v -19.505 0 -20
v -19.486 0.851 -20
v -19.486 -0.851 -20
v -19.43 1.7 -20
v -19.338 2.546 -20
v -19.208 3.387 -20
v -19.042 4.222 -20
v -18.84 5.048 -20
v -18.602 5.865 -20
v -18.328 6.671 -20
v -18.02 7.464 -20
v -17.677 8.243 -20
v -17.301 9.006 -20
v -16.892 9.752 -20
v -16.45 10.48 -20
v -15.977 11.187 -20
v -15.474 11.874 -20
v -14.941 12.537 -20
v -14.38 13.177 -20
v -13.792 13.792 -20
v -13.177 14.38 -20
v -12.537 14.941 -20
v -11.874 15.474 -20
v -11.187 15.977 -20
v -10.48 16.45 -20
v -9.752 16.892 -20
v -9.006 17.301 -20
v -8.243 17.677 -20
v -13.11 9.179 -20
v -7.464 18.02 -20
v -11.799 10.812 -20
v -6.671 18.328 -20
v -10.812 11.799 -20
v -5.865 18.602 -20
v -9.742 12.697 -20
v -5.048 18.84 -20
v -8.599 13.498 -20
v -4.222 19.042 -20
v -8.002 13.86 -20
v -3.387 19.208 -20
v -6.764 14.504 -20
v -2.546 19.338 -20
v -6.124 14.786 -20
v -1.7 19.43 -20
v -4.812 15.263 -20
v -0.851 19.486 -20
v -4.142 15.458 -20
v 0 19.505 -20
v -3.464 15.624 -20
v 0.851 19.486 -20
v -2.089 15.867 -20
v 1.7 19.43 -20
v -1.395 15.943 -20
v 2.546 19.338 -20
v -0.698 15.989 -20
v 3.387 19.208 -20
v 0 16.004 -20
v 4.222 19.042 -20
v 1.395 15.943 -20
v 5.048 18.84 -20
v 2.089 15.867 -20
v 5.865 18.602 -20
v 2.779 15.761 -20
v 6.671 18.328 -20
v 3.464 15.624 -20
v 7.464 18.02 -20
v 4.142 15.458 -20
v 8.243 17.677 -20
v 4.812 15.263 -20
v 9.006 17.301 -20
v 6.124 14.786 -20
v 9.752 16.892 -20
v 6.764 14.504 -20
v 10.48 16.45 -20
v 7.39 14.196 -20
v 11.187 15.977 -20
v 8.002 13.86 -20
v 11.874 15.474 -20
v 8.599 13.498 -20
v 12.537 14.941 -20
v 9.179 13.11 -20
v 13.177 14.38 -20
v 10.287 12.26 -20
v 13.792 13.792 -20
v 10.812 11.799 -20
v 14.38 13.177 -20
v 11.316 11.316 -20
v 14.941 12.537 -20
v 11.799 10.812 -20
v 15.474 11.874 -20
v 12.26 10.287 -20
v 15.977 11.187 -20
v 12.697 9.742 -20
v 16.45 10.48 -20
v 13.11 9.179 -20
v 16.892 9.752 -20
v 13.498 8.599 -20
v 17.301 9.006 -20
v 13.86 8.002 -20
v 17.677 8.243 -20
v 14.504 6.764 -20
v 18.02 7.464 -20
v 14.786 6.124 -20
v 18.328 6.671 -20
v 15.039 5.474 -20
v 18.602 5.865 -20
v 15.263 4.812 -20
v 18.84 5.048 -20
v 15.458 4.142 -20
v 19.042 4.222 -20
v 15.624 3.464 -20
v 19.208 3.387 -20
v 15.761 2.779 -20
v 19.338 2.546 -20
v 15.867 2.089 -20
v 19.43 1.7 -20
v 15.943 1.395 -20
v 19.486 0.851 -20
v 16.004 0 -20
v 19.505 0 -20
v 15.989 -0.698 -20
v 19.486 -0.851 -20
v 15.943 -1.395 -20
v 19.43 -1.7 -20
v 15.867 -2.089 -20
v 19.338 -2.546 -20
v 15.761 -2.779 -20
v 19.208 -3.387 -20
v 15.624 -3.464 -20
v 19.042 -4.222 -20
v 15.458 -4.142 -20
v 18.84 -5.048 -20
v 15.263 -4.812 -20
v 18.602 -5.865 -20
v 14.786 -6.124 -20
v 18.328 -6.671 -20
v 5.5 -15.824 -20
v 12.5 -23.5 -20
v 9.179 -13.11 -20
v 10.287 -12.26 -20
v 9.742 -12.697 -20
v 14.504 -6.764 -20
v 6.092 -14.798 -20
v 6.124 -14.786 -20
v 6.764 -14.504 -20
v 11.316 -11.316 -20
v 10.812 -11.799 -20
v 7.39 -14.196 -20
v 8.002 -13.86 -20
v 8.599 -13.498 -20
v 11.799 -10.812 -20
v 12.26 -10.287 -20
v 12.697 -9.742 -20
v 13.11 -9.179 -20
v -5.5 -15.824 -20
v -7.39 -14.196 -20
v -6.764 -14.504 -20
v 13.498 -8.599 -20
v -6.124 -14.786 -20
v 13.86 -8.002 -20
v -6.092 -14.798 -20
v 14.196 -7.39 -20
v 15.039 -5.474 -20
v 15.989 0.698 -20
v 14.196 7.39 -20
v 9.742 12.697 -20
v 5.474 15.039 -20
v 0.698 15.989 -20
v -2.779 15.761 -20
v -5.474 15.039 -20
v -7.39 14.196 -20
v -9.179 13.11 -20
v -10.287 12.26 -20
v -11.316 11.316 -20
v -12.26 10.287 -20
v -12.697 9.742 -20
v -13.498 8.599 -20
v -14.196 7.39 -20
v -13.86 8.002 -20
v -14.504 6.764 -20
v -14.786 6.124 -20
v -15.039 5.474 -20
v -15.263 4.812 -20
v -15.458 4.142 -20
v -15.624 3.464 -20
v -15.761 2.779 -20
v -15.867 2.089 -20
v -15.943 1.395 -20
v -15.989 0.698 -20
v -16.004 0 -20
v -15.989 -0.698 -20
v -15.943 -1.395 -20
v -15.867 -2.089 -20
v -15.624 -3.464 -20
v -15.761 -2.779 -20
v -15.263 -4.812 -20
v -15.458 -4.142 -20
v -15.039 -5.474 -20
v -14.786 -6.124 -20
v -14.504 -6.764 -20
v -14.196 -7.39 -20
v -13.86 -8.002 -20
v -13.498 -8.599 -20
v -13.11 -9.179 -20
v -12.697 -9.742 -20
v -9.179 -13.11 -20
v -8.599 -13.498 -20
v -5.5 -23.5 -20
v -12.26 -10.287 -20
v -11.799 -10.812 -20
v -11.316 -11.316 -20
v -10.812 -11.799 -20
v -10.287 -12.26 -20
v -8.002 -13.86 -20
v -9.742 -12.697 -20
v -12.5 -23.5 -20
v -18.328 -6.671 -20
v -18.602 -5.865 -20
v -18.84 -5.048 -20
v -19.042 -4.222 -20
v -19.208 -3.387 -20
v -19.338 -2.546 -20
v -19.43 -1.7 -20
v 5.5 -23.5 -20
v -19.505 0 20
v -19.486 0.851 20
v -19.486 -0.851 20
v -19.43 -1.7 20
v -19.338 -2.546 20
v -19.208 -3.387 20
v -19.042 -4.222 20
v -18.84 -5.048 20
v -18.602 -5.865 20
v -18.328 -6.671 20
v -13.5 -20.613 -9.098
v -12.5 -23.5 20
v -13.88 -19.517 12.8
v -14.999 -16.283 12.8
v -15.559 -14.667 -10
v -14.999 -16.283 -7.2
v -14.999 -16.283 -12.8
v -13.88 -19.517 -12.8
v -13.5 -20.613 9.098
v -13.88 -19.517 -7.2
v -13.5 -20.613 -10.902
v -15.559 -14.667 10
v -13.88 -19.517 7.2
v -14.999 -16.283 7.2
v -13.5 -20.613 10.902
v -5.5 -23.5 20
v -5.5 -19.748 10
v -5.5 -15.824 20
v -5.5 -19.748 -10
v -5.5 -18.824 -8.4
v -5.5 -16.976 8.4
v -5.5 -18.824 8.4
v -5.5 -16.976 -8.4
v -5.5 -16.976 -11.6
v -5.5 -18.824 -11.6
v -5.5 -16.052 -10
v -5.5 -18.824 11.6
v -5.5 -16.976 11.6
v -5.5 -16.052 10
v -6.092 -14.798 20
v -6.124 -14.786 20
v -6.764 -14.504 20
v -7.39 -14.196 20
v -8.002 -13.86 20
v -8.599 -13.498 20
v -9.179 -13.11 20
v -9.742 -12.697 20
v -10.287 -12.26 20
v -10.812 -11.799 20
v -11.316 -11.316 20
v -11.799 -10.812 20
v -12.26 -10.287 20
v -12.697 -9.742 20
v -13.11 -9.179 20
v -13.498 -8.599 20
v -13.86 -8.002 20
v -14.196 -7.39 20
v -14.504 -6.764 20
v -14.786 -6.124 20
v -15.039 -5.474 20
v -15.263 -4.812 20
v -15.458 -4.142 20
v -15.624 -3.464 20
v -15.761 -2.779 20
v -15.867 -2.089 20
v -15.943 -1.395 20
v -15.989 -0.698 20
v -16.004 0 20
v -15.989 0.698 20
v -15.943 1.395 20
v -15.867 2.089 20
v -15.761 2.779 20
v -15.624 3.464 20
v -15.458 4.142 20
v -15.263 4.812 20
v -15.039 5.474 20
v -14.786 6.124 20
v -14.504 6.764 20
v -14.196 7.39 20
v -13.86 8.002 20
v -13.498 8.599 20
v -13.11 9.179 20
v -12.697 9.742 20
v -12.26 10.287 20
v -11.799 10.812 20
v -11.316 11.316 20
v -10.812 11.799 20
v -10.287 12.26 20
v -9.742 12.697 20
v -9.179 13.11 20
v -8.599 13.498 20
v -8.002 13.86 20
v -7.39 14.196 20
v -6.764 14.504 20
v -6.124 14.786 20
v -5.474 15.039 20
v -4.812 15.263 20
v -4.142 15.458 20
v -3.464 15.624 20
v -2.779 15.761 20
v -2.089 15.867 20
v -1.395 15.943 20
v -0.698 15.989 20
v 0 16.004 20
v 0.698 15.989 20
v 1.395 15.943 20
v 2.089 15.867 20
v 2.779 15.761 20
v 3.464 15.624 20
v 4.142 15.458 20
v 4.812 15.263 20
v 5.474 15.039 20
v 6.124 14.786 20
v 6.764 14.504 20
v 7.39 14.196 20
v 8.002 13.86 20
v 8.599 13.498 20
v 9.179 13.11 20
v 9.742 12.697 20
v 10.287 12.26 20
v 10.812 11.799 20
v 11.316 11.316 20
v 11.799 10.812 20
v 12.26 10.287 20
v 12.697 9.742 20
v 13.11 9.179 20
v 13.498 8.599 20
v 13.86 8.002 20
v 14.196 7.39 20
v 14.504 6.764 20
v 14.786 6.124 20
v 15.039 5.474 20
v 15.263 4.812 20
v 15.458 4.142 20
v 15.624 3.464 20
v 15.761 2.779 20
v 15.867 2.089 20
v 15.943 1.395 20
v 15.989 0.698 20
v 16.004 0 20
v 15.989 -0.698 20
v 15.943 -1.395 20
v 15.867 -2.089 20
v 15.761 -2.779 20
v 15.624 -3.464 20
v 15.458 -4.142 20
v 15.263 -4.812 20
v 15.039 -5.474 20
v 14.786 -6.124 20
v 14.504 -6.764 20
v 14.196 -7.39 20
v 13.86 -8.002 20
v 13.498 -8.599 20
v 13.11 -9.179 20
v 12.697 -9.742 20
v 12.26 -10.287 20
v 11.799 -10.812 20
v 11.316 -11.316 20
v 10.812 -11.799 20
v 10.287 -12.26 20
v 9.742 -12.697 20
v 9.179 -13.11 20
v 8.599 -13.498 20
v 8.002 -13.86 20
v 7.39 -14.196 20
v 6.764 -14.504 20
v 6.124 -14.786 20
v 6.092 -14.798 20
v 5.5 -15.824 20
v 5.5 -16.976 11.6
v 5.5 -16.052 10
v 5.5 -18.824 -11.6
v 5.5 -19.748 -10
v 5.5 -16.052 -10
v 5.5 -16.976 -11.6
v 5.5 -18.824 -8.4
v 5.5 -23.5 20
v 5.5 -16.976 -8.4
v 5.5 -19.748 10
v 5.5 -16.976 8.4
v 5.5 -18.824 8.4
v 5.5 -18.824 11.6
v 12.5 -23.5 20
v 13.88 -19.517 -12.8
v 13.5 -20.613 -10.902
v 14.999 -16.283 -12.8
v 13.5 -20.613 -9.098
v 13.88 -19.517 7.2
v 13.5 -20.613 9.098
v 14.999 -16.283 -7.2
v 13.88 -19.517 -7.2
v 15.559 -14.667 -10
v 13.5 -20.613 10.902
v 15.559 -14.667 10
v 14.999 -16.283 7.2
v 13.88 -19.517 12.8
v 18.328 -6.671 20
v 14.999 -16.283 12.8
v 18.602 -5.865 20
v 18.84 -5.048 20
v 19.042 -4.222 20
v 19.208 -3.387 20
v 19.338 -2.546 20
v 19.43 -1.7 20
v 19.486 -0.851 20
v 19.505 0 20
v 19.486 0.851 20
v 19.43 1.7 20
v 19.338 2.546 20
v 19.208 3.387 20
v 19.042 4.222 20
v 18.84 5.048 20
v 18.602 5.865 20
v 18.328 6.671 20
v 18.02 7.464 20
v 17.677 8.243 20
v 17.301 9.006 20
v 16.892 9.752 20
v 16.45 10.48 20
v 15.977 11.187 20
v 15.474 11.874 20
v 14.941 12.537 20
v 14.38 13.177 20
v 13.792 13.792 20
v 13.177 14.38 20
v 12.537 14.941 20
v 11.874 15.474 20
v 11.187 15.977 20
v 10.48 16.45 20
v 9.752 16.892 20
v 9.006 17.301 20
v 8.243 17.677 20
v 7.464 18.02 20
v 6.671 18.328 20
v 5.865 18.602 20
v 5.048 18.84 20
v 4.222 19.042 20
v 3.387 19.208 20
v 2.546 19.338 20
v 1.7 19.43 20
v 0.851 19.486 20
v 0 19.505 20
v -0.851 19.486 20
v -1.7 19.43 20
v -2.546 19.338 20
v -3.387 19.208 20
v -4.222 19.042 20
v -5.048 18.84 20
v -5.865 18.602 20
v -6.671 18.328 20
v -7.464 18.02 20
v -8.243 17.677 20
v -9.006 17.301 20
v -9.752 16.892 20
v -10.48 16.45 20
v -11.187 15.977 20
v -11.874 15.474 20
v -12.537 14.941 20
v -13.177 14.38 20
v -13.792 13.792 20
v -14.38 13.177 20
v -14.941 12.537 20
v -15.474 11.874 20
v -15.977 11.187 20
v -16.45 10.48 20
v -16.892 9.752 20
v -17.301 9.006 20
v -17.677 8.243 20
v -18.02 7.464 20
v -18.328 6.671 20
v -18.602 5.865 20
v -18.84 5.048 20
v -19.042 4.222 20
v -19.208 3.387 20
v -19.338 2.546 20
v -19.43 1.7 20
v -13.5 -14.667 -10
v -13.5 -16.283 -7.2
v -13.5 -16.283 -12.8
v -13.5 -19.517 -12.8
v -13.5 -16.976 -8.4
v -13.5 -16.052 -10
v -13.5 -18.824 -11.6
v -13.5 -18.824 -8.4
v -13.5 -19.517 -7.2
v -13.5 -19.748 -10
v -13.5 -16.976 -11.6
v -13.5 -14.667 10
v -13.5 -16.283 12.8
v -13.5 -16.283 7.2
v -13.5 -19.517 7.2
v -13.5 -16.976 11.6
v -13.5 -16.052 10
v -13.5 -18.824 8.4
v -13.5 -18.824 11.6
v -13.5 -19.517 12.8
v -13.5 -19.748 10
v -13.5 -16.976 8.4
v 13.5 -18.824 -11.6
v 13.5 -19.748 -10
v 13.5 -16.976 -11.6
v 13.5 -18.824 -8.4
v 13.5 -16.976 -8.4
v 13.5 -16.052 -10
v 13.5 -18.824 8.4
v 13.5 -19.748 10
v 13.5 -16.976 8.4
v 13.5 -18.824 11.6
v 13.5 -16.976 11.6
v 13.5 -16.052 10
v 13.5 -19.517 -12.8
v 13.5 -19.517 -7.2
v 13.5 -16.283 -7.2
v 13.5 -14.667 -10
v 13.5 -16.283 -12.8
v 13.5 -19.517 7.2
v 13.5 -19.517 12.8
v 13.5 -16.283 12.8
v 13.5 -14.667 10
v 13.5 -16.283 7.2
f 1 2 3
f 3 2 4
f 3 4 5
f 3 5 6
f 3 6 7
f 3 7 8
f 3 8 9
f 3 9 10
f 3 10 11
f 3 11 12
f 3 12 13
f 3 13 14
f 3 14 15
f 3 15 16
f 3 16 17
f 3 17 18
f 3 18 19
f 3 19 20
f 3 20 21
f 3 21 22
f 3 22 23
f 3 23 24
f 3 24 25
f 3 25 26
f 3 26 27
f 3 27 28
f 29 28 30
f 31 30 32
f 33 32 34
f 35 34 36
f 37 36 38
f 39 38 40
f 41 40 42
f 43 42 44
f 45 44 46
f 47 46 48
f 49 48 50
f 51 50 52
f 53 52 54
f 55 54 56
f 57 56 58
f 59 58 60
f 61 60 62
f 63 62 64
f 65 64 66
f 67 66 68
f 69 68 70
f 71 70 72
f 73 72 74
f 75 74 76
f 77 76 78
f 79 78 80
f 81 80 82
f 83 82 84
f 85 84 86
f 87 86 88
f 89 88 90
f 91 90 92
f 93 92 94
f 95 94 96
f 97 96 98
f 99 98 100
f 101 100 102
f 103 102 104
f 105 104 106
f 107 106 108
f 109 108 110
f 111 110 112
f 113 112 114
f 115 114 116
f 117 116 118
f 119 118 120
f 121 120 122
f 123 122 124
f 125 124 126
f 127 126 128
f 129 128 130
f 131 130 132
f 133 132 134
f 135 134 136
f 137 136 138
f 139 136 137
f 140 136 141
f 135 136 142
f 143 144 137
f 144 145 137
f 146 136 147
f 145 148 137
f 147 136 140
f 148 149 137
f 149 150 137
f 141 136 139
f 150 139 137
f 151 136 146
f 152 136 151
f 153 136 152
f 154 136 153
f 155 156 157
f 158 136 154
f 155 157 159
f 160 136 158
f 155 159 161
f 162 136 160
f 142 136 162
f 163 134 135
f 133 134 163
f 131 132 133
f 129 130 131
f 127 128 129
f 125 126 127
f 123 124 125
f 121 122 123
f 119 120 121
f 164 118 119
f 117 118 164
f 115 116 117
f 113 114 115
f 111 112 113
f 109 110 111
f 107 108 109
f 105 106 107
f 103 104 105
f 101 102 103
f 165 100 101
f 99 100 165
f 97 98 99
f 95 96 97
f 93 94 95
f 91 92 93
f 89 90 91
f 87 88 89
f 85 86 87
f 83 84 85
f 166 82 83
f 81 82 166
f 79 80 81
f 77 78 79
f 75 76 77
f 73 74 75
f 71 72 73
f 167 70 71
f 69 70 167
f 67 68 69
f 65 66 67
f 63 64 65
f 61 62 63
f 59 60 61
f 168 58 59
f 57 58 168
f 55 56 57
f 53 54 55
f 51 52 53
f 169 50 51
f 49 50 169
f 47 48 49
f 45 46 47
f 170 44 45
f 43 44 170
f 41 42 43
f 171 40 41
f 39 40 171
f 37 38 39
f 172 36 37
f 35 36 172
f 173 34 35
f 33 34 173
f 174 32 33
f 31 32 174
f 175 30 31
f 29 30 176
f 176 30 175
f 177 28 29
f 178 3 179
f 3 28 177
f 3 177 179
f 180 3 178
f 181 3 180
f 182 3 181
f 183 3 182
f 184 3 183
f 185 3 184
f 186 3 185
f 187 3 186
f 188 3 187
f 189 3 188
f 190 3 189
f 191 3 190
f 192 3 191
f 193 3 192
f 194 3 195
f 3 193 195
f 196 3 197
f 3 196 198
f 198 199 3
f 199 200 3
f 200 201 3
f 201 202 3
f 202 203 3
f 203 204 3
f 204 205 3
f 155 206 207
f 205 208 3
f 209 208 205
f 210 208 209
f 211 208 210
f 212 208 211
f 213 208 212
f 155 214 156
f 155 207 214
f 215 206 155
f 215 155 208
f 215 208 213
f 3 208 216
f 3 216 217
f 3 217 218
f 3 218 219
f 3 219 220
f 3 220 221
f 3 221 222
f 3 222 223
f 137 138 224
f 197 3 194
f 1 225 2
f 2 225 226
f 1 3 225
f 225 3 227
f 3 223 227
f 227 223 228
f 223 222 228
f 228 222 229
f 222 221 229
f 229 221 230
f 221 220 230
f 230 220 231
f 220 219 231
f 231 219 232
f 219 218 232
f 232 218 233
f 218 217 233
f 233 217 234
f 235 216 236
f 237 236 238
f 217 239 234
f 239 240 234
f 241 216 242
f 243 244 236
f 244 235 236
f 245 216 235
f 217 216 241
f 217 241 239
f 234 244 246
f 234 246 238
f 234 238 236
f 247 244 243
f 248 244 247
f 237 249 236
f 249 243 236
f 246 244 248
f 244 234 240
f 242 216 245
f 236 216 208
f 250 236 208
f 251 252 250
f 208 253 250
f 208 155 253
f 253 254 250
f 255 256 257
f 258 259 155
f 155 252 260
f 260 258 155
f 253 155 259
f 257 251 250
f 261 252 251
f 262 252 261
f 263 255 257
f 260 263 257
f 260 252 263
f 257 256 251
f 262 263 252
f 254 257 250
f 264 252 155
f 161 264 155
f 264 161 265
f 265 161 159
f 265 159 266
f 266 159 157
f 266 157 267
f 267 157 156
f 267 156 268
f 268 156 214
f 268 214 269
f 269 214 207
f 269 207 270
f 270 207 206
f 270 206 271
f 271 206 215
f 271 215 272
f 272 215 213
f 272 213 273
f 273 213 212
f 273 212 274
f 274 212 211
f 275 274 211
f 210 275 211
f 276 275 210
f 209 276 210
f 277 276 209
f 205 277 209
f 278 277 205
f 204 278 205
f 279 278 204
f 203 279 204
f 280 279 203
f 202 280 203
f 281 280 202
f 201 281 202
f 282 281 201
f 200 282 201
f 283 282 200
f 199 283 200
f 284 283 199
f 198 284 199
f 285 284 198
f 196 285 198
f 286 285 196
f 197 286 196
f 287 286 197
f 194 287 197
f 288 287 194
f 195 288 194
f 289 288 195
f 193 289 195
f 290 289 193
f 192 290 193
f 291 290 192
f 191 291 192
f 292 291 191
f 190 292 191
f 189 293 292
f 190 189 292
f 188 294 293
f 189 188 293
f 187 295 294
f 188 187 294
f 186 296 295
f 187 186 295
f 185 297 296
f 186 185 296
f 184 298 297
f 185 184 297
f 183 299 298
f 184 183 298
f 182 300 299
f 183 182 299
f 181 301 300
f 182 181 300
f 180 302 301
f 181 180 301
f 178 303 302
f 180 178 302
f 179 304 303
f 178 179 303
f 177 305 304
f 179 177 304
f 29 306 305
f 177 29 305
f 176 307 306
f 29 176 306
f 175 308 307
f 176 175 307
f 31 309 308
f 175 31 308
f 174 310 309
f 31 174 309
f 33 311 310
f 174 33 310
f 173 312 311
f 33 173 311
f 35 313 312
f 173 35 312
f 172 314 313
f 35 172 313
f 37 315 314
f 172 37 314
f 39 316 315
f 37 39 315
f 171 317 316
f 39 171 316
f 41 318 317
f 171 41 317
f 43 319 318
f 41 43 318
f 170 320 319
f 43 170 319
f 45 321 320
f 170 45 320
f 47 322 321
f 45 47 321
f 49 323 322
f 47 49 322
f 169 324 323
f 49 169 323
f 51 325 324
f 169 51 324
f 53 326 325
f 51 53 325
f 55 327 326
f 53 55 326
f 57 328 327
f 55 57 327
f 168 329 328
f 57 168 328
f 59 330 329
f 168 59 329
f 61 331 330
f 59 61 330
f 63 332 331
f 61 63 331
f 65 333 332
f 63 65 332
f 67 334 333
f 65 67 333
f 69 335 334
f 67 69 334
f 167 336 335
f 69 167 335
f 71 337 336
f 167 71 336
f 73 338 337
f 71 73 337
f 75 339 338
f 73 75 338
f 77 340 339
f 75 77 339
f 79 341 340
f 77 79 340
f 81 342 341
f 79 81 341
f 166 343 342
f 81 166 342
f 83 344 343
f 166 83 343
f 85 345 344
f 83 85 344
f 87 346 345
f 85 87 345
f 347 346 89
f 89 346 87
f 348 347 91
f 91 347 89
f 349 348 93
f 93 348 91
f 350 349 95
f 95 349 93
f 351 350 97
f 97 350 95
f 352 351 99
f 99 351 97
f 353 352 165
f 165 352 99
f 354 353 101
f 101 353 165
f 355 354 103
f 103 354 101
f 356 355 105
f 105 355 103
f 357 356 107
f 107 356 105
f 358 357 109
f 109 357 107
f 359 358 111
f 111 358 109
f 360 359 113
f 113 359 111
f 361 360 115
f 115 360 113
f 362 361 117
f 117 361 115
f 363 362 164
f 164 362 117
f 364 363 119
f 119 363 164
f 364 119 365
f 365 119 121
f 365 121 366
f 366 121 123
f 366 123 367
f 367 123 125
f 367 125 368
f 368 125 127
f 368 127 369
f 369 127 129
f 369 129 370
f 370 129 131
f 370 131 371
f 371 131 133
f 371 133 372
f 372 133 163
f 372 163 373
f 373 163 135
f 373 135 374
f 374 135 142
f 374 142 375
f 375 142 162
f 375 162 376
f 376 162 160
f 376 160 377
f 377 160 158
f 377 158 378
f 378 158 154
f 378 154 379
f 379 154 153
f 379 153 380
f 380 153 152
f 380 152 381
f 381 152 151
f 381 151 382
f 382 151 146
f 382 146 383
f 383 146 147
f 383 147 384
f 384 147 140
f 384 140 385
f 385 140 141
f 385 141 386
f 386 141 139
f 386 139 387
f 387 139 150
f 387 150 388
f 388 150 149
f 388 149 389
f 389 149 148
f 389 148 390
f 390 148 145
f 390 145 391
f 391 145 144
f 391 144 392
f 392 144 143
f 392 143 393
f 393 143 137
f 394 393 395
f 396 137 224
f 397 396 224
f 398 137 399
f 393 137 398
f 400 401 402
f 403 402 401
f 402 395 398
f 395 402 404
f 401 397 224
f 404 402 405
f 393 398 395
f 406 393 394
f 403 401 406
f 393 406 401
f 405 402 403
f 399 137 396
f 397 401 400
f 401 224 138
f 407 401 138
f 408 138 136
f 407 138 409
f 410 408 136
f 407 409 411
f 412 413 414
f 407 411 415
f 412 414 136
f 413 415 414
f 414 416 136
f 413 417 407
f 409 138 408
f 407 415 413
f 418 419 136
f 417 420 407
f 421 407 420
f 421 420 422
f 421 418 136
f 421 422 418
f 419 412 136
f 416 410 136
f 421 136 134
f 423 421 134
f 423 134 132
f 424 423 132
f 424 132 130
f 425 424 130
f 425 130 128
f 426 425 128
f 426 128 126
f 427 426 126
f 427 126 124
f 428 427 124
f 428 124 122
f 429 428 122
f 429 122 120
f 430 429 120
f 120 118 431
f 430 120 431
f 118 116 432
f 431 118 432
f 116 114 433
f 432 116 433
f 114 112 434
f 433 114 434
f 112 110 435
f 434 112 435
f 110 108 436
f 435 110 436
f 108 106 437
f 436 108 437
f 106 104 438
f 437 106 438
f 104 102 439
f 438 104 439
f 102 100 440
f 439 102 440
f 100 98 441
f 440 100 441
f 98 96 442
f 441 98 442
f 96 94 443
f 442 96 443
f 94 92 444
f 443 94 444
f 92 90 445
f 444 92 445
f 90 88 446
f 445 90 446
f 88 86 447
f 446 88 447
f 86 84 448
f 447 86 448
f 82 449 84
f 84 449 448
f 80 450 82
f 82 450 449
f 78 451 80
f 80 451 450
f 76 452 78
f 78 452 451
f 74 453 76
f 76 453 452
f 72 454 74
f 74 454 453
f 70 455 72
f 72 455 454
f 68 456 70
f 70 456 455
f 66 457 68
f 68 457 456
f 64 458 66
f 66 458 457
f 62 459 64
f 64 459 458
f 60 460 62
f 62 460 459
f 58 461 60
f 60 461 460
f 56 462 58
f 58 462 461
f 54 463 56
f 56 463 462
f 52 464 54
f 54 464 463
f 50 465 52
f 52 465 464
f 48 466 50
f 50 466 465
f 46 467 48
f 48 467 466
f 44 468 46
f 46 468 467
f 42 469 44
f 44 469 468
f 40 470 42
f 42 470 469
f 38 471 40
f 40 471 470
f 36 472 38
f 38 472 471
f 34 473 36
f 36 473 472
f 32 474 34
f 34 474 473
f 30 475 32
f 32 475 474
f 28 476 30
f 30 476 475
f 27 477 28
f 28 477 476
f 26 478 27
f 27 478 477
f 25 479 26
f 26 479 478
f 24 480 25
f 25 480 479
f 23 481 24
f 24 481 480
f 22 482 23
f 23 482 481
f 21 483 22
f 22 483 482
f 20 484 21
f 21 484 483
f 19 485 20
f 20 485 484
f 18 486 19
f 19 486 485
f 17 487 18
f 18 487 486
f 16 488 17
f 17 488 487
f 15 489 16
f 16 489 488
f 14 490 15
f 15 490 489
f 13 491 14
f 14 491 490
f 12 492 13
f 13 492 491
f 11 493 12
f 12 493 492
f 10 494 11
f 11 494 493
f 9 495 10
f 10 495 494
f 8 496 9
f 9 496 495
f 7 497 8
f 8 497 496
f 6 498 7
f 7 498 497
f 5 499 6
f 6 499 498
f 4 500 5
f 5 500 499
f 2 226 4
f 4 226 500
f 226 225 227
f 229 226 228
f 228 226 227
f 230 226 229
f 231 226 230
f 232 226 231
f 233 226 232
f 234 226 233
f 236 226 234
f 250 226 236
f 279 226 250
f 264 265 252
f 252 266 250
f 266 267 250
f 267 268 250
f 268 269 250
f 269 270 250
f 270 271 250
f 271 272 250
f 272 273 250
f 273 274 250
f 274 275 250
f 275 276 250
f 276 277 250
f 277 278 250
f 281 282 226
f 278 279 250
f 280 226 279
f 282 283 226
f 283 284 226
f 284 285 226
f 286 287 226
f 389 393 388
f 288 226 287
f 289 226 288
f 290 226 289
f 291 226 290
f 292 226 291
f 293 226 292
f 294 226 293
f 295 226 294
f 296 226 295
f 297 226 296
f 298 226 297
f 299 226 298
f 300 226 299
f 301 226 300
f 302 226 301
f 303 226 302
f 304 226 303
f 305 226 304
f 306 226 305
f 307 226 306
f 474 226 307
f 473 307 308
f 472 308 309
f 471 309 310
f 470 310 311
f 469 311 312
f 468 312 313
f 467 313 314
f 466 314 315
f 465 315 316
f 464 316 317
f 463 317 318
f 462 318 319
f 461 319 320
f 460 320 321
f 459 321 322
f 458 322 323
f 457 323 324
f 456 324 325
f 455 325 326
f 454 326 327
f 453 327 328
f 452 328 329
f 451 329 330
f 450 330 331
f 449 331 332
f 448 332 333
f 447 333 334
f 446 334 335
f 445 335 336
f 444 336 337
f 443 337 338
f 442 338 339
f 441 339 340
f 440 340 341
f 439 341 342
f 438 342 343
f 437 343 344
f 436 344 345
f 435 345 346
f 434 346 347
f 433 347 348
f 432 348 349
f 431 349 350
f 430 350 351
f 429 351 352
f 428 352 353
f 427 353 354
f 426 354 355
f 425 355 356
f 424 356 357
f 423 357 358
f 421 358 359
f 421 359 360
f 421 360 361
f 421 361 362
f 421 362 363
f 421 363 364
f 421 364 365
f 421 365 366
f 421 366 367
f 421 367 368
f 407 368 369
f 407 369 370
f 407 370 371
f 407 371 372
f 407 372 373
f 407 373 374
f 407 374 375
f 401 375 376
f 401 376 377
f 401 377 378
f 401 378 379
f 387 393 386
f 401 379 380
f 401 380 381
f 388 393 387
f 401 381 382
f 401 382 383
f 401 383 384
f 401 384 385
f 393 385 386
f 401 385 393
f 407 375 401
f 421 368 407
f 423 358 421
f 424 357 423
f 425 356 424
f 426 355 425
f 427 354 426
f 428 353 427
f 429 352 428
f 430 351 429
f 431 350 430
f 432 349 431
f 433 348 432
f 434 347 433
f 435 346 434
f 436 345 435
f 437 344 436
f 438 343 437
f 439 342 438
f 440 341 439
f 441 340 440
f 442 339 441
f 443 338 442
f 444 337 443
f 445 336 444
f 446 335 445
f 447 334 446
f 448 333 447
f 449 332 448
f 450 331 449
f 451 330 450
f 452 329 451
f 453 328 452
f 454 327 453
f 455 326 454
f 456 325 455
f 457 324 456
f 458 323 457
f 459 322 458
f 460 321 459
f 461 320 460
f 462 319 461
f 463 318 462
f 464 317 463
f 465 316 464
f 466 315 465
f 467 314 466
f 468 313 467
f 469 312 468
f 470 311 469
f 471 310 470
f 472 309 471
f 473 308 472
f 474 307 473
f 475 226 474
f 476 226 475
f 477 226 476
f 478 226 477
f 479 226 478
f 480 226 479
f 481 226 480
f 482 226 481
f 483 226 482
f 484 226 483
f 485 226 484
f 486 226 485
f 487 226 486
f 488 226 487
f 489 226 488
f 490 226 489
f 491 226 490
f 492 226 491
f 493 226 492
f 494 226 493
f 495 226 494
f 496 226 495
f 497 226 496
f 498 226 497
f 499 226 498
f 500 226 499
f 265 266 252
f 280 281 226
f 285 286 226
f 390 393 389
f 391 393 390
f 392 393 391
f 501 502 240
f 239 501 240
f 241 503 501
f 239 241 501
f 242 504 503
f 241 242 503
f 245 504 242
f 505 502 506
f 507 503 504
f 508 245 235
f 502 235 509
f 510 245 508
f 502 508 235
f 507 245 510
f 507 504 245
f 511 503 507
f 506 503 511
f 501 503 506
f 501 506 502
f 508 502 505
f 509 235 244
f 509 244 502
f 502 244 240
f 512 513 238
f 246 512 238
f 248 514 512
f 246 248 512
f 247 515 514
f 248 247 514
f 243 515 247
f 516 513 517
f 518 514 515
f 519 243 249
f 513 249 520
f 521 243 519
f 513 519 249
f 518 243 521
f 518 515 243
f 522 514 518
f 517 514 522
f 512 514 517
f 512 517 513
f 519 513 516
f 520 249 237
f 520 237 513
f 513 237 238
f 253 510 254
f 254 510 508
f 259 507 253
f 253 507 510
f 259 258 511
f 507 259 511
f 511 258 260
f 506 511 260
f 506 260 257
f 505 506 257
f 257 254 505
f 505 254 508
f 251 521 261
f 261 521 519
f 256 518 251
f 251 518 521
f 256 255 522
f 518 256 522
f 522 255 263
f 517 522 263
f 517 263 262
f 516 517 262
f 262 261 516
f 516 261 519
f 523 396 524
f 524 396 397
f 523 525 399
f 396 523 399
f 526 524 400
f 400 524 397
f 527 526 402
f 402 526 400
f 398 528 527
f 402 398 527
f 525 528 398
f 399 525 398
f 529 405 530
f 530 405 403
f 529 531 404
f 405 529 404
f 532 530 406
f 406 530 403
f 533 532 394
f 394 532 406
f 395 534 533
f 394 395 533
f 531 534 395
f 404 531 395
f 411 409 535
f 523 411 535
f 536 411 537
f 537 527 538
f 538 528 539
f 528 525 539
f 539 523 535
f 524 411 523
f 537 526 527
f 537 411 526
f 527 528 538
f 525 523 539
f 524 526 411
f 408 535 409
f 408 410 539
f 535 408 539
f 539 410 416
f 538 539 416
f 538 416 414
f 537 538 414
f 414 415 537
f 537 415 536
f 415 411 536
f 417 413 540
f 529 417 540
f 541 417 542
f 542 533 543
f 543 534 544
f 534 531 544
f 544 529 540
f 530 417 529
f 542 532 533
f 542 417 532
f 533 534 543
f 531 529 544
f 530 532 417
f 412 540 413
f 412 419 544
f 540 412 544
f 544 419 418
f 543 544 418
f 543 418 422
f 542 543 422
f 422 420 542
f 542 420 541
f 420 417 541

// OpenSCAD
top = 1;
bottom = -1;
left = -1;
right = 1;
front = -1;
rear = 1;

clamp_thickness  = 7;
clamp_inner_diam = 32;
clamp_outer_diam = clamp_inner_diam + clamp_thickness;
screw_hole_diam = 3.2;
screw_hole_spacing = 20;
nut_hole_diam = 5.6;
nut_hole_depth = 1;
height_beyond_screws = 10;
clamp_height = screw_hole_spacing + height_beyond_screws*2;
gap_width = 11;
screw_area_depth = nut_hole_diam + 5;
screw_area_depth = nut_hole_diam;
screw_area_thickness = clamp_thickness*2+gap_width;

function accurate_diam(diam,sides) = 1 / cos(180/sides) / 2 * diam;

module hole(diam,len,sides=8) {
  cylinder(r=accurate_diam(diam,sides),h=len,center=true,$fn=sides);
}

module main() {
  module body() {
    hull() {
      hole(clamp_outer_diam, clamp_height, 72*2);

      translate([0,(clamp_outer_diam/2 + screw_area_depth/2 - 1.6) * front,0]) {
        cube([screw_area_thickness,screw_area_depth,clamp_height],center=true);
      }
    }
  }

  module holes() {
    # hole(clamp_inner_diam, clamp_height + 0.1, 72*2);

    translate([0,(clamp_inner_diam/2-gap_width*.3)*front,0]) {
      rotate([0,0,0]) {
        hole(gap_width*1.15,clamp_height+1,6);
      }
    }

    translate([0,(clamp_outer_diam/2) * front,0]) {
      cube([gap_width,screw_area_depth*2,clamp_height+0.1],center=true);

      for (side=[top,bottom]) {
        translate([0,screw_hole_diam/2,screw_hole_spacing/2*side]) { 
          rotate([0,90,0]) rotate([0,0,90]) {
            # hole(screw_hole_diam,100,6);

            for (side=[left,right]) {
              translate([0,0,(2.5+screw_area_thickness/2)*side]) {
                hole(nut_hole_diam,nut_hole_depth*3,6);
              }
            }
          }
        }
      }
    }
  }

  difference() {
    body();
    holes();
  }
}

main();
